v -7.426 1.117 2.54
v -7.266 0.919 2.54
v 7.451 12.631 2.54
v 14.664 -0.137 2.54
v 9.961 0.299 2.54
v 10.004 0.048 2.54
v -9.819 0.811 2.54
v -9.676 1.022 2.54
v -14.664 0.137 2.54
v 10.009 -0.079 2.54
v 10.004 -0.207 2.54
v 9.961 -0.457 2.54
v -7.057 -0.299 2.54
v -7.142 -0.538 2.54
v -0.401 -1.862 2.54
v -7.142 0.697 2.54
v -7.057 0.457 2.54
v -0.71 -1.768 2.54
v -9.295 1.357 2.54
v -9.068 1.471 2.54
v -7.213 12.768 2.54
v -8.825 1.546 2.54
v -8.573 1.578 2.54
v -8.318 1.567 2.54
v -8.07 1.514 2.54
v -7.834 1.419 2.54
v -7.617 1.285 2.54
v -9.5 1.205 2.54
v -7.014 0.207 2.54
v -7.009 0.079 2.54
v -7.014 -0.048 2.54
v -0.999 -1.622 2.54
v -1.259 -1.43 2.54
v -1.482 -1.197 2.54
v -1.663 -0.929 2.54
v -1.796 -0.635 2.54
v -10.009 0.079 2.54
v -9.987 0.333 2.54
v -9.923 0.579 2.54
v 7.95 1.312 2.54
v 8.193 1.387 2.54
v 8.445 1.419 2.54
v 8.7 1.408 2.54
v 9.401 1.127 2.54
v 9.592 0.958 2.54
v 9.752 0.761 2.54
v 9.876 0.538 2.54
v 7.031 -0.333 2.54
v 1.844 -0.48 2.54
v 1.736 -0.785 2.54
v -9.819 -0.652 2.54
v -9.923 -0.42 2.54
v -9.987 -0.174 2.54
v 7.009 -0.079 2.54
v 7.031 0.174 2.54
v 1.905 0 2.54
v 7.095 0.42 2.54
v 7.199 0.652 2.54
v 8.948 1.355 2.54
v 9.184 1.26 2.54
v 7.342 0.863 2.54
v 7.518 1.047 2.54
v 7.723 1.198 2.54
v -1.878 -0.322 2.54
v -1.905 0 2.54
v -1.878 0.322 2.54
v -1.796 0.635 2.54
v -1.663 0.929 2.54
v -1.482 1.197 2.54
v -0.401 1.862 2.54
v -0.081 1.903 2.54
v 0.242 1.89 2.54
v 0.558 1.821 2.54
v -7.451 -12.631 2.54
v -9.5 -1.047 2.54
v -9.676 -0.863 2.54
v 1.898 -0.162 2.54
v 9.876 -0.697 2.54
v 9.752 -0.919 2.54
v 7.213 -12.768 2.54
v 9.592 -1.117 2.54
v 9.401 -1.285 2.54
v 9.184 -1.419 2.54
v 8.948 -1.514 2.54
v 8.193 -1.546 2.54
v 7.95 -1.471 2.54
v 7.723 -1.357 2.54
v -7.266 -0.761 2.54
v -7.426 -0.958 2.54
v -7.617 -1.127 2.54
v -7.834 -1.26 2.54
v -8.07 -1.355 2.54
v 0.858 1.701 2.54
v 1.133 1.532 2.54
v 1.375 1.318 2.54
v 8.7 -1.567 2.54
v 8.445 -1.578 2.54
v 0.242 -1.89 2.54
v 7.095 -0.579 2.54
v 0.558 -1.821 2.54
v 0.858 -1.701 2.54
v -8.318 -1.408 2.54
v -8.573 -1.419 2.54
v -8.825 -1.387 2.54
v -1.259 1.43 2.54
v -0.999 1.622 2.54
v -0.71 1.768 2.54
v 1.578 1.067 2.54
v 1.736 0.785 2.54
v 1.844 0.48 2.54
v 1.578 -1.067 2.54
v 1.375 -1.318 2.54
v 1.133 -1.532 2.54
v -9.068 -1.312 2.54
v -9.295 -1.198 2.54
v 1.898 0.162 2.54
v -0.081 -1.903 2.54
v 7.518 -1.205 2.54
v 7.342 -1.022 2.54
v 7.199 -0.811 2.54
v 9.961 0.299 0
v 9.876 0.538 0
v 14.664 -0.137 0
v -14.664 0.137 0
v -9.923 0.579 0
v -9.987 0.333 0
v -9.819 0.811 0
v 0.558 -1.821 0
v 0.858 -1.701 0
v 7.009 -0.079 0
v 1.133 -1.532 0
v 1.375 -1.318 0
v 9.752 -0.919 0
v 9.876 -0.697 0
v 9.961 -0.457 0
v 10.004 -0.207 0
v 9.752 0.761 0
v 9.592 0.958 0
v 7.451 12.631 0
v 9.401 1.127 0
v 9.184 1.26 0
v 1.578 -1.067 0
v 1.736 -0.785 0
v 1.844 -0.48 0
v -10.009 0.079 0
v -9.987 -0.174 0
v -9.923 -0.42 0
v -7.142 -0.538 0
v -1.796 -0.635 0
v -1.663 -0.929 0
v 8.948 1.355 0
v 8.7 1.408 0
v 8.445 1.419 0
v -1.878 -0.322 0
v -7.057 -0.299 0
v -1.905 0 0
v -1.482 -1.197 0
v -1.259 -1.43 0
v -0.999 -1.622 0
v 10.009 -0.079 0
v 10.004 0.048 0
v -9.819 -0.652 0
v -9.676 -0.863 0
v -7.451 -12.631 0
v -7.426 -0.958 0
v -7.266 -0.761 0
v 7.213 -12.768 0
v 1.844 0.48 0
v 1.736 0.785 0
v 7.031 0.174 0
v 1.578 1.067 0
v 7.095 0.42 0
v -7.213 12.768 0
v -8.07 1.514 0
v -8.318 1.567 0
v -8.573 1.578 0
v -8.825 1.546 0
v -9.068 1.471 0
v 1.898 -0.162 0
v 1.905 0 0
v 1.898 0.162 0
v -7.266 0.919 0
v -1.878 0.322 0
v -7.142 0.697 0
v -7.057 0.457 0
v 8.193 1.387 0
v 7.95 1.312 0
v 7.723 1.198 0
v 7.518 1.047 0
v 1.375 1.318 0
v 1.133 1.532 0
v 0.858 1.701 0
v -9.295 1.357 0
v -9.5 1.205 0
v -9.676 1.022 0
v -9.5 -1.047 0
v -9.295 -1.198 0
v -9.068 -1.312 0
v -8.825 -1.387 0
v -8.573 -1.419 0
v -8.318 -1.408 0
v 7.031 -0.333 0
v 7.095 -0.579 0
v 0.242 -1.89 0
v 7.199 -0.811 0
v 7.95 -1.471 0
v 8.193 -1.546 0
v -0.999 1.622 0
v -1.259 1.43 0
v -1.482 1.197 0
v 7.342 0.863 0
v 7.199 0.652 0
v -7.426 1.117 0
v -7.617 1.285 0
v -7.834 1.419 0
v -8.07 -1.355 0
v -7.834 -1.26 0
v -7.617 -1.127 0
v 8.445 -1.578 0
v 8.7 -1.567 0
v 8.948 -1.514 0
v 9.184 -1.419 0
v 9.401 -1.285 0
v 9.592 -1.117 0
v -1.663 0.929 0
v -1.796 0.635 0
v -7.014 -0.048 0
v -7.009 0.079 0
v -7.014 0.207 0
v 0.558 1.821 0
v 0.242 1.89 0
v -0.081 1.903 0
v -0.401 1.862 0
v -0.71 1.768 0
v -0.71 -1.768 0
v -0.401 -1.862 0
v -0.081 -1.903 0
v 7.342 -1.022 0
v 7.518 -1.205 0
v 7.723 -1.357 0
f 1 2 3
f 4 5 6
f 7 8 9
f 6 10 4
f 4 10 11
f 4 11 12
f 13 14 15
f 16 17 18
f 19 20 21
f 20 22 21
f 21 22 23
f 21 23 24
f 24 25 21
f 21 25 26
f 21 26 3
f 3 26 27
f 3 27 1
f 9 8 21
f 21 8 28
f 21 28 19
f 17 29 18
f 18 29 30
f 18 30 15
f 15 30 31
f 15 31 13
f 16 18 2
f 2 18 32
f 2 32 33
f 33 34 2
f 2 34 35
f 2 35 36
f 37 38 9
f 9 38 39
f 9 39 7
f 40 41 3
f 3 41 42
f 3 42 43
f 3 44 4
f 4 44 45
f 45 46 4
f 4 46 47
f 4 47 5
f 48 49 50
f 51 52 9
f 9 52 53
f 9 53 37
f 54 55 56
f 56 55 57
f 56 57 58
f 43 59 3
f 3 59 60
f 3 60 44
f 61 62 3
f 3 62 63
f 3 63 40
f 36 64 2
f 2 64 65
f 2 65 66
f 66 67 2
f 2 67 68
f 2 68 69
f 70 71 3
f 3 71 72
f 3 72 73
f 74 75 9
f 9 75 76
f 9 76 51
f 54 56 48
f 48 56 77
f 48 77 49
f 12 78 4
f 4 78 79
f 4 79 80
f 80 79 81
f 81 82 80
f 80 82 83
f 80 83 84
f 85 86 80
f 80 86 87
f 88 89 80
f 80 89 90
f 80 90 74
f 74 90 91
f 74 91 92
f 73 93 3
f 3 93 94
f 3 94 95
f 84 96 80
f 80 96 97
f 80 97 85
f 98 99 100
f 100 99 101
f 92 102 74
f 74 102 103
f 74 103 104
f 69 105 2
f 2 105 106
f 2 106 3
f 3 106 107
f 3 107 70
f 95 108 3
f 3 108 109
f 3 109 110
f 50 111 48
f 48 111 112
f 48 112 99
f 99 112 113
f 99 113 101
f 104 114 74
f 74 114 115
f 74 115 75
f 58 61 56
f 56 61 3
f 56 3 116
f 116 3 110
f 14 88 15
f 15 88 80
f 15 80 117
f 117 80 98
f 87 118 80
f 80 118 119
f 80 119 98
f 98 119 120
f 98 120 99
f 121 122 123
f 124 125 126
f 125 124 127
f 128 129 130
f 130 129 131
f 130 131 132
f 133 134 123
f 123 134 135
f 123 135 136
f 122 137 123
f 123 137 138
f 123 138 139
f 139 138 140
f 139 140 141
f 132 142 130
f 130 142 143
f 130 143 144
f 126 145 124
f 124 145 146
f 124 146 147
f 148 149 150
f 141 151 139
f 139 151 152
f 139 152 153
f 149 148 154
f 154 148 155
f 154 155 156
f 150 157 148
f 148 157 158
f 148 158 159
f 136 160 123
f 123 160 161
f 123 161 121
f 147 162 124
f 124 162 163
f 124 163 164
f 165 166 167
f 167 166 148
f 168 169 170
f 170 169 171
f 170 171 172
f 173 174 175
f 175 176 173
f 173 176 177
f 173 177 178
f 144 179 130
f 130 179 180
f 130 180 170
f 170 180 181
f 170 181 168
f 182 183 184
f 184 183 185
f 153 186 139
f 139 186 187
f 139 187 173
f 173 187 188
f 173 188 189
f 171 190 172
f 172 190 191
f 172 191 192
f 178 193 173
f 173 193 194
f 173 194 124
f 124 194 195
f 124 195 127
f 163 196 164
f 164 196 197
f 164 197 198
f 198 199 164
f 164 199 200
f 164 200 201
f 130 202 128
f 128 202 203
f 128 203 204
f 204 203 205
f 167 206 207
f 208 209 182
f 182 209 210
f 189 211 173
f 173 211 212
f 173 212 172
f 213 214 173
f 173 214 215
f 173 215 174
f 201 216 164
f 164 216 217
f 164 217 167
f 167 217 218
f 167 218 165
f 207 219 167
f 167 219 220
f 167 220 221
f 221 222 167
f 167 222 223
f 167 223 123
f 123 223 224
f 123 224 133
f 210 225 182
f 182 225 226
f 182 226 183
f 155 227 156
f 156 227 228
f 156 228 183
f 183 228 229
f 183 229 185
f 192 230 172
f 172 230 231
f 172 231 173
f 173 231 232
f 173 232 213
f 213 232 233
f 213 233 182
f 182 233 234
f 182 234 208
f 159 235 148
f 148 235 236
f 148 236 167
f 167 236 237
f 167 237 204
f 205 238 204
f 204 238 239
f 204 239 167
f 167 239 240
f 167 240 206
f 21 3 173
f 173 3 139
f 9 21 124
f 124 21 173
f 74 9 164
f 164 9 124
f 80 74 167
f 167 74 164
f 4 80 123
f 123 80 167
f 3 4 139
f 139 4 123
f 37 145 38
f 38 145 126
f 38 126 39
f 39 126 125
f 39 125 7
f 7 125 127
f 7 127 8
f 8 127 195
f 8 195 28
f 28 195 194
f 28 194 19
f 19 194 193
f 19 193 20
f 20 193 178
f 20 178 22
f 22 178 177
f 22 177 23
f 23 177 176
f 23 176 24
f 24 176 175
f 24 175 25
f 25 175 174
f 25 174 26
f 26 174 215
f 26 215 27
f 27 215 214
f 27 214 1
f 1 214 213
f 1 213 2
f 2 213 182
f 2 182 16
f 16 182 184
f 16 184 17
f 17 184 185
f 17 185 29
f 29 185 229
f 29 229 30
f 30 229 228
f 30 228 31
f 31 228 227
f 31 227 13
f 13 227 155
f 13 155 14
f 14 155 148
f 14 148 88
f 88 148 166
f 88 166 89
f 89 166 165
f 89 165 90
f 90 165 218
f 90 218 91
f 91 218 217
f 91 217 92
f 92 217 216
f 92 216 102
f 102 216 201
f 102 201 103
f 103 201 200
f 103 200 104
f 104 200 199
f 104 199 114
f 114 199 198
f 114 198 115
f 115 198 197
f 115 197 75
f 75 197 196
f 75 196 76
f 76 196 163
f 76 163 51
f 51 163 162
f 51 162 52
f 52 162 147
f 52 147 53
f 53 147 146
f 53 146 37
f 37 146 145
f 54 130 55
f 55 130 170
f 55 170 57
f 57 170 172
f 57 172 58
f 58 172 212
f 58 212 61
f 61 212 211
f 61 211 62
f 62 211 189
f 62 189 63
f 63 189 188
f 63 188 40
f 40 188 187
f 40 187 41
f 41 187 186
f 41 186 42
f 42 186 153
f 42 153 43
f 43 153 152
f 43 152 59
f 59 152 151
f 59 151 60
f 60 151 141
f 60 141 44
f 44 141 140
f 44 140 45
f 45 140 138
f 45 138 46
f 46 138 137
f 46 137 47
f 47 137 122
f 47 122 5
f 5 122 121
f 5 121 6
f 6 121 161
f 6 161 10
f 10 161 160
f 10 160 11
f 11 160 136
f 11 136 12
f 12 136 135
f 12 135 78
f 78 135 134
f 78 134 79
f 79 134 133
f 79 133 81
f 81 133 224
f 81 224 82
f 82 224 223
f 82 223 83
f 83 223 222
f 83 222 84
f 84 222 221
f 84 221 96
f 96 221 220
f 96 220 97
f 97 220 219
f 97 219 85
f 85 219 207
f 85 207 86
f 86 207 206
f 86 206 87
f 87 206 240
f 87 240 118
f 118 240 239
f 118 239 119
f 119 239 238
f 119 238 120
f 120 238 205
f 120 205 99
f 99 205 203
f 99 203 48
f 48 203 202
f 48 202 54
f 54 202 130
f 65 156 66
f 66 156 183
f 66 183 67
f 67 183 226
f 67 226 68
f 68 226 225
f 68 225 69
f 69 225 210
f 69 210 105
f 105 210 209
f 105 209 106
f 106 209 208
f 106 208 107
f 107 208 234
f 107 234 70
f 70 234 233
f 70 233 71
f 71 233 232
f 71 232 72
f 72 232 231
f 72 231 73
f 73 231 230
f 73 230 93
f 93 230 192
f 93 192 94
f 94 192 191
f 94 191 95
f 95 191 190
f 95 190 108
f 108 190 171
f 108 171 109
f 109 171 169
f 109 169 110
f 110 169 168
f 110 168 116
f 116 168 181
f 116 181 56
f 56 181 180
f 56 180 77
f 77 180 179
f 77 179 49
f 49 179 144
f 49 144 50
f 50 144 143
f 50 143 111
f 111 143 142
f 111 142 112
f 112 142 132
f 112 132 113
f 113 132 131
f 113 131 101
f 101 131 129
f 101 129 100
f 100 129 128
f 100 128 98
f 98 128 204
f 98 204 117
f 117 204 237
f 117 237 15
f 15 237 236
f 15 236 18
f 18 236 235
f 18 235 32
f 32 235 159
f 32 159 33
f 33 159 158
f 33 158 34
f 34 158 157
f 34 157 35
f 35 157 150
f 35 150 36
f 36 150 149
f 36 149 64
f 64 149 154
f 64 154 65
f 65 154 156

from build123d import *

# Parameters (mm, degrees)
SKETCH1_R           = 1.5
SKETCH1_R_2         = 1.905
BOSS_EXTRUDE1_DEPTH = 2.54


with BuildPart() as part:
    # Sketch1 → Boss-Extrude1 (new body)
    with BuildSketch(Plane.XY):
        Polygon((-7.213493432, 12.767883374), (-14.66405807, 0.136873125), (-7.450564639, -12.631010249), (7.213493432, -12.767883374), (14.66405807, -0.136873125), (7.450564639, 12.631010249), align=None)
        with Locations((-8.509, 0.079422314)):
            Circle(SKETCH1_R, mode=Mode.SUBTRACT)
        with Locations((8.509, -0.079422314)):
            Circle(SKETCH1_R, mode=Mode.SUBTRACT)
        Circle(SKETCH1_R_2, mode=Mode.SUBTRACT)
    extrude(amount=BOSS_EXTRUDE1_DEPTH)


solid = part.part
